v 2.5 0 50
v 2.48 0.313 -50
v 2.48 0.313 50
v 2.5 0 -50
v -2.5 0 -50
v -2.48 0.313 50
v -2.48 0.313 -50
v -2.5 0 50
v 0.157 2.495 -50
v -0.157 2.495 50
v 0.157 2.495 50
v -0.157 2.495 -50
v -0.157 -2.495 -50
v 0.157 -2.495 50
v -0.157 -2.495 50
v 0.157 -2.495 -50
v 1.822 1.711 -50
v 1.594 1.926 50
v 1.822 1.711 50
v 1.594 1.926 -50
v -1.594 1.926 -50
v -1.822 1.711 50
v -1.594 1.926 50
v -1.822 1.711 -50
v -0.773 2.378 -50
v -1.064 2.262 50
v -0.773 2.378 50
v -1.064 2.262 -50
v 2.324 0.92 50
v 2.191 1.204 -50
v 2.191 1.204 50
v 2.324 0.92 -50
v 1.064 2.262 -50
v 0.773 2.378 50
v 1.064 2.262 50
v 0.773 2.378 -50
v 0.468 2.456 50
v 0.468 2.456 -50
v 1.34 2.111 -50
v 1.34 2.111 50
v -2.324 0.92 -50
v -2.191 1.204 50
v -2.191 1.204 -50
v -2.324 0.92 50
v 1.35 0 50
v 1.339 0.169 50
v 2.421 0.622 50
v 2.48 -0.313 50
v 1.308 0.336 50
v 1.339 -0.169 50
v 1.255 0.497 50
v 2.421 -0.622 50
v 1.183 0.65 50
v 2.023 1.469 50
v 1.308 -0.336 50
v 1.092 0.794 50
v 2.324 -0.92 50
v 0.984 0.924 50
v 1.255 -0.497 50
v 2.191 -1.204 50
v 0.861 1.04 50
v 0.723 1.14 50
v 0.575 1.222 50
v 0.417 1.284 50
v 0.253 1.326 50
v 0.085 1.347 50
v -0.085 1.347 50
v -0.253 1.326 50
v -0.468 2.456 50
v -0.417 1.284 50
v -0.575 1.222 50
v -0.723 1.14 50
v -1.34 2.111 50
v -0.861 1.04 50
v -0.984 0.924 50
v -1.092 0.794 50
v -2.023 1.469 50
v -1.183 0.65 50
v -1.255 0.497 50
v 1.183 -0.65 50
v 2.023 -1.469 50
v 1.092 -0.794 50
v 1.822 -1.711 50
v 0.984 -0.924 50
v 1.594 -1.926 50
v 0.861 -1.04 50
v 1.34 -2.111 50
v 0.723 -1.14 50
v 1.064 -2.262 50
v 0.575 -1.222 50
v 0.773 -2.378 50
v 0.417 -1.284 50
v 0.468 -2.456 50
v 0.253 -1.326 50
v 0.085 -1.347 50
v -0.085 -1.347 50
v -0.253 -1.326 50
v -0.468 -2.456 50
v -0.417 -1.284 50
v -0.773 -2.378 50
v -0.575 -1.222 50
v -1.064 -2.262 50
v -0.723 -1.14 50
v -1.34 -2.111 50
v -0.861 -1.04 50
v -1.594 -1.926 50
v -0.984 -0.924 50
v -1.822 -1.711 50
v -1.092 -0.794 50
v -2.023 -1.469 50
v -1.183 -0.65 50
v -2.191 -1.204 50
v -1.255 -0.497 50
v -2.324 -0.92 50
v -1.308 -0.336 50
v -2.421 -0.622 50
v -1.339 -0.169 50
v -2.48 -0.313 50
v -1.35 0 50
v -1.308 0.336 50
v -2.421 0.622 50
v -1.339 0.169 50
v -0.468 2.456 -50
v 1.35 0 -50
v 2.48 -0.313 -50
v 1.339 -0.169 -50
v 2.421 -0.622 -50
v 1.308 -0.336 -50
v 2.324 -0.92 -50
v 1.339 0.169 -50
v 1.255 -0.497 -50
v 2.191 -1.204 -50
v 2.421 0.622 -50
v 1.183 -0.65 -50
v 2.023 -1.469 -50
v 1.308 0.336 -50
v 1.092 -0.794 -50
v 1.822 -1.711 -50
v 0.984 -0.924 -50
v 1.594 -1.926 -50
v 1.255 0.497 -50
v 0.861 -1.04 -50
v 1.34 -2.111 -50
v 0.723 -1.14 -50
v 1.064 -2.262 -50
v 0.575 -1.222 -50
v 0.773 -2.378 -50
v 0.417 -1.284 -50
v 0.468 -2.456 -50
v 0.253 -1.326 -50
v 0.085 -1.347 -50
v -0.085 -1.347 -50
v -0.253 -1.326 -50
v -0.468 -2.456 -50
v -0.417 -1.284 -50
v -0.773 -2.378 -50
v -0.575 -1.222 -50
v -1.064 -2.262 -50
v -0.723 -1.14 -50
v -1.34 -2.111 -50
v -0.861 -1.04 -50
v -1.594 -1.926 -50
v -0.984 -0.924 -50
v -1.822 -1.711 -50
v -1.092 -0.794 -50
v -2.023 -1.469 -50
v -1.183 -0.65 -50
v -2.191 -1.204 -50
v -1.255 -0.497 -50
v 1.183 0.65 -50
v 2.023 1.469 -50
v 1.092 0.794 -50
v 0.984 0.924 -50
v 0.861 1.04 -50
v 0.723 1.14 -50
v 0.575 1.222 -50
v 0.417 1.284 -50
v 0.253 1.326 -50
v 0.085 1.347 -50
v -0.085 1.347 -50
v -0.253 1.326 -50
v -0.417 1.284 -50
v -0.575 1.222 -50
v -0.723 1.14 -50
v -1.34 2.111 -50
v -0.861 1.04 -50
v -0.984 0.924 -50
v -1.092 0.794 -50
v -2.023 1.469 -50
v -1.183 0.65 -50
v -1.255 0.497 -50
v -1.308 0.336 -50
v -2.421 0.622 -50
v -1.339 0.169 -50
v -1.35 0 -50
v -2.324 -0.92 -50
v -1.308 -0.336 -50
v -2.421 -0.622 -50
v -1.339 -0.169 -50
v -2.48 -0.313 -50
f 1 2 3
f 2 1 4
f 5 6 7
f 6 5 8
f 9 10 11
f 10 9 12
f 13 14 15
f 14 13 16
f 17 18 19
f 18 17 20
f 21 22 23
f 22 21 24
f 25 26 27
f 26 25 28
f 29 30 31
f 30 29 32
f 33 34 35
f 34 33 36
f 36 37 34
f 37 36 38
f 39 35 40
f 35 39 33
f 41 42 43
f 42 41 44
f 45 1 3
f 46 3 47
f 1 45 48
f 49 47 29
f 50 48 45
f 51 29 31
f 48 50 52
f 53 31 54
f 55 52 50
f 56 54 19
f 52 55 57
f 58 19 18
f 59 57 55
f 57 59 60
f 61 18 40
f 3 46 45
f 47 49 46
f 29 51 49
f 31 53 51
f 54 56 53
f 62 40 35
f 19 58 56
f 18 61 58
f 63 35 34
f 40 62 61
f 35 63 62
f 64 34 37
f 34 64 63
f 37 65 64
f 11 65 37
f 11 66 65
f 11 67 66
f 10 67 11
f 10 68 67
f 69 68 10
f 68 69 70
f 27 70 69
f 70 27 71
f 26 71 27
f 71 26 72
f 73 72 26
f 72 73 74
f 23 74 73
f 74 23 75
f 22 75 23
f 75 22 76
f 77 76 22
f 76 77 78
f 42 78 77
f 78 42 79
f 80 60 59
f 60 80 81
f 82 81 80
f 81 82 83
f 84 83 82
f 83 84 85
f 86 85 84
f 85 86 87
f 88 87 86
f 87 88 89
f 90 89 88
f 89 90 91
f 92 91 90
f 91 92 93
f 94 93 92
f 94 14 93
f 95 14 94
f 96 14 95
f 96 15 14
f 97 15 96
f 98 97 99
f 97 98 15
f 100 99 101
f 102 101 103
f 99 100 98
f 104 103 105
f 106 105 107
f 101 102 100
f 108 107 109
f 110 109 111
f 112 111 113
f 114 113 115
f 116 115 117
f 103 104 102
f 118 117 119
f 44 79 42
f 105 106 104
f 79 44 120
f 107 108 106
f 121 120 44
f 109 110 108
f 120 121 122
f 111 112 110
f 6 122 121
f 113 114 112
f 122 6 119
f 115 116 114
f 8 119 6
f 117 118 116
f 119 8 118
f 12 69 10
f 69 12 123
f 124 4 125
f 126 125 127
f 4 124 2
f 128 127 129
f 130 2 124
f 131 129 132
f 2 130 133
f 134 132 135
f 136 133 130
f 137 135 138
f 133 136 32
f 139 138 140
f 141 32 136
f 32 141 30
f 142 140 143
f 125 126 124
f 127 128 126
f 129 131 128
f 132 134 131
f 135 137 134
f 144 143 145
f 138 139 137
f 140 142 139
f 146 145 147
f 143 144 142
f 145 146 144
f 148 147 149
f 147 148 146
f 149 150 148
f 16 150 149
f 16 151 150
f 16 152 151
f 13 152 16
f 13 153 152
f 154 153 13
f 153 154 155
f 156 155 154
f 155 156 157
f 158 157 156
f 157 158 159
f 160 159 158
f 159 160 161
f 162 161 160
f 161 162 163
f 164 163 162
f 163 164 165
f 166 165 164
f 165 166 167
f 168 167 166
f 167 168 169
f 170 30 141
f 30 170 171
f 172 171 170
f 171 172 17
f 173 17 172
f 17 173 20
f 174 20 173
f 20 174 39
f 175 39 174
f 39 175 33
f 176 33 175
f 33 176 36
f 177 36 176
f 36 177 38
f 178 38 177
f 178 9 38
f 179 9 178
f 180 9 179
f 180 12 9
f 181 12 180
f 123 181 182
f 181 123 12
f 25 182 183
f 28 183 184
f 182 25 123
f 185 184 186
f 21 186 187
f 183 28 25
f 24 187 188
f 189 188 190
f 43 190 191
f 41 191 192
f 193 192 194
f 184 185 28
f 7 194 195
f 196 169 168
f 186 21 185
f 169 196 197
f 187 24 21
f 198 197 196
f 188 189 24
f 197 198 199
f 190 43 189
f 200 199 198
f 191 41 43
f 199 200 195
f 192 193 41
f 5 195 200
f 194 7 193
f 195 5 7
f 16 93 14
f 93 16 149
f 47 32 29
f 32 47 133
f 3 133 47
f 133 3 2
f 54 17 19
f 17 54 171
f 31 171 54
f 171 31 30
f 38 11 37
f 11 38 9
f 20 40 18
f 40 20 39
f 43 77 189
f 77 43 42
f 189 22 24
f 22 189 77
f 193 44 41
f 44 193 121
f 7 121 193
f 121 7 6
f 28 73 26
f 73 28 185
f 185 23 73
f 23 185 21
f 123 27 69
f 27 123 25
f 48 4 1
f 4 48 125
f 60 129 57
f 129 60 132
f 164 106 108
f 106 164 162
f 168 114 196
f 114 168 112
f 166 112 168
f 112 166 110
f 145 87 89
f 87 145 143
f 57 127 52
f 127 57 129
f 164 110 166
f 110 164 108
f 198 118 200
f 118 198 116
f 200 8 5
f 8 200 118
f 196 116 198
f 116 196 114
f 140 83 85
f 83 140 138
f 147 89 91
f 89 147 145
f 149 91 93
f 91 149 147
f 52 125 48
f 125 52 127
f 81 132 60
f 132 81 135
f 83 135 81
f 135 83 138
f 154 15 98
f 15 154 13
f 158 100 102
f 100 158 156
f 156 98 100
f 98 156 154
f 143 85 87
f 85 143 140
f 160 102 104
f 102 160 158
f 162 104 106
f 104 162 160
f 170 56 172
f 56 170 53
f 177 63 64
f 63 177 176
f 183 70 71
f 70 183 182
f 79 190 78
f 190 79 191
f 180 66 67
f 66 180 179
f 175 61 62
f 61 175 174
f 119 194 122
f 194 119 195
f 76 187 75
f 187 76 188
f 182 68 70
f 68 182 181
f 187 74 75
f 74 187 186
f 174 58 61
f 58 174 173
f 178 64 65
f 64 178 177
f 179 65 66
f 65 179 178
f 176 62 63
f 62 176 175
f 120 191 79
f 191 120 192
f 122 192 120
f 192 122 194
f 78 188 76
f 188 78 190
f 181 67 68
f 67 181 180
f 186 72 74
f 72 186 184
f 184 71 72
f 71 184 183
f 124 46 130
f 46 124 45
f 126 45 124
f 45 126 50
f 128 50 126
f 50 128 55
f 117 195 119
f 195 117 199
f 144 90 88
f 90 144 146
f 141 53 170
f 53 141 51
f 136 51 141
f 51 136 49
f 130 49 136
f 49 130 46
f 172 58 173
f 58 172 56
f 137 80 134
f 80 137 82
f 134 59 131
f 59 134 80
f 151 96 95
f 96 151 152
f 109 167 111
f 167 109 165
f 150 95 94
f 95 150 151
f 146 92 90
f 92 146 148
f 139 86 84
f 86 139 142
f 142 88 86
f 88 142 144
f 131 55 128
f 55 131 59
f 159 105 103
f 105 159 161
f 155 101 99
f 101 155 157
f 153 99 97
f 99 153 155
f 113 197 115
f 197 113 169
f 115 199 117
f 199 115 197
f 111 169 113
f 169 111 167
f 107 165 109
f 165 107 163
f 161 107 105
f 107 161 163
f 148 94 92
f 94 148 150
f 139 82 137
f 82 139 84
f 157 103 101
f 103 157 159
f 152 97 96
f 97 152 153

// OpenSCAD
$fn = 50;


difference() {
	union() {
		translate(v = [0, 0, -50.0000000000]) {
			cylinder(h = 100, r = 2.5000000000);
		}
	}
	union() {
		translate(v = [0, 0, -100.0000000000]) {
			cylinder(h = 200, r = 1.3500000000);
		}
	}
}
